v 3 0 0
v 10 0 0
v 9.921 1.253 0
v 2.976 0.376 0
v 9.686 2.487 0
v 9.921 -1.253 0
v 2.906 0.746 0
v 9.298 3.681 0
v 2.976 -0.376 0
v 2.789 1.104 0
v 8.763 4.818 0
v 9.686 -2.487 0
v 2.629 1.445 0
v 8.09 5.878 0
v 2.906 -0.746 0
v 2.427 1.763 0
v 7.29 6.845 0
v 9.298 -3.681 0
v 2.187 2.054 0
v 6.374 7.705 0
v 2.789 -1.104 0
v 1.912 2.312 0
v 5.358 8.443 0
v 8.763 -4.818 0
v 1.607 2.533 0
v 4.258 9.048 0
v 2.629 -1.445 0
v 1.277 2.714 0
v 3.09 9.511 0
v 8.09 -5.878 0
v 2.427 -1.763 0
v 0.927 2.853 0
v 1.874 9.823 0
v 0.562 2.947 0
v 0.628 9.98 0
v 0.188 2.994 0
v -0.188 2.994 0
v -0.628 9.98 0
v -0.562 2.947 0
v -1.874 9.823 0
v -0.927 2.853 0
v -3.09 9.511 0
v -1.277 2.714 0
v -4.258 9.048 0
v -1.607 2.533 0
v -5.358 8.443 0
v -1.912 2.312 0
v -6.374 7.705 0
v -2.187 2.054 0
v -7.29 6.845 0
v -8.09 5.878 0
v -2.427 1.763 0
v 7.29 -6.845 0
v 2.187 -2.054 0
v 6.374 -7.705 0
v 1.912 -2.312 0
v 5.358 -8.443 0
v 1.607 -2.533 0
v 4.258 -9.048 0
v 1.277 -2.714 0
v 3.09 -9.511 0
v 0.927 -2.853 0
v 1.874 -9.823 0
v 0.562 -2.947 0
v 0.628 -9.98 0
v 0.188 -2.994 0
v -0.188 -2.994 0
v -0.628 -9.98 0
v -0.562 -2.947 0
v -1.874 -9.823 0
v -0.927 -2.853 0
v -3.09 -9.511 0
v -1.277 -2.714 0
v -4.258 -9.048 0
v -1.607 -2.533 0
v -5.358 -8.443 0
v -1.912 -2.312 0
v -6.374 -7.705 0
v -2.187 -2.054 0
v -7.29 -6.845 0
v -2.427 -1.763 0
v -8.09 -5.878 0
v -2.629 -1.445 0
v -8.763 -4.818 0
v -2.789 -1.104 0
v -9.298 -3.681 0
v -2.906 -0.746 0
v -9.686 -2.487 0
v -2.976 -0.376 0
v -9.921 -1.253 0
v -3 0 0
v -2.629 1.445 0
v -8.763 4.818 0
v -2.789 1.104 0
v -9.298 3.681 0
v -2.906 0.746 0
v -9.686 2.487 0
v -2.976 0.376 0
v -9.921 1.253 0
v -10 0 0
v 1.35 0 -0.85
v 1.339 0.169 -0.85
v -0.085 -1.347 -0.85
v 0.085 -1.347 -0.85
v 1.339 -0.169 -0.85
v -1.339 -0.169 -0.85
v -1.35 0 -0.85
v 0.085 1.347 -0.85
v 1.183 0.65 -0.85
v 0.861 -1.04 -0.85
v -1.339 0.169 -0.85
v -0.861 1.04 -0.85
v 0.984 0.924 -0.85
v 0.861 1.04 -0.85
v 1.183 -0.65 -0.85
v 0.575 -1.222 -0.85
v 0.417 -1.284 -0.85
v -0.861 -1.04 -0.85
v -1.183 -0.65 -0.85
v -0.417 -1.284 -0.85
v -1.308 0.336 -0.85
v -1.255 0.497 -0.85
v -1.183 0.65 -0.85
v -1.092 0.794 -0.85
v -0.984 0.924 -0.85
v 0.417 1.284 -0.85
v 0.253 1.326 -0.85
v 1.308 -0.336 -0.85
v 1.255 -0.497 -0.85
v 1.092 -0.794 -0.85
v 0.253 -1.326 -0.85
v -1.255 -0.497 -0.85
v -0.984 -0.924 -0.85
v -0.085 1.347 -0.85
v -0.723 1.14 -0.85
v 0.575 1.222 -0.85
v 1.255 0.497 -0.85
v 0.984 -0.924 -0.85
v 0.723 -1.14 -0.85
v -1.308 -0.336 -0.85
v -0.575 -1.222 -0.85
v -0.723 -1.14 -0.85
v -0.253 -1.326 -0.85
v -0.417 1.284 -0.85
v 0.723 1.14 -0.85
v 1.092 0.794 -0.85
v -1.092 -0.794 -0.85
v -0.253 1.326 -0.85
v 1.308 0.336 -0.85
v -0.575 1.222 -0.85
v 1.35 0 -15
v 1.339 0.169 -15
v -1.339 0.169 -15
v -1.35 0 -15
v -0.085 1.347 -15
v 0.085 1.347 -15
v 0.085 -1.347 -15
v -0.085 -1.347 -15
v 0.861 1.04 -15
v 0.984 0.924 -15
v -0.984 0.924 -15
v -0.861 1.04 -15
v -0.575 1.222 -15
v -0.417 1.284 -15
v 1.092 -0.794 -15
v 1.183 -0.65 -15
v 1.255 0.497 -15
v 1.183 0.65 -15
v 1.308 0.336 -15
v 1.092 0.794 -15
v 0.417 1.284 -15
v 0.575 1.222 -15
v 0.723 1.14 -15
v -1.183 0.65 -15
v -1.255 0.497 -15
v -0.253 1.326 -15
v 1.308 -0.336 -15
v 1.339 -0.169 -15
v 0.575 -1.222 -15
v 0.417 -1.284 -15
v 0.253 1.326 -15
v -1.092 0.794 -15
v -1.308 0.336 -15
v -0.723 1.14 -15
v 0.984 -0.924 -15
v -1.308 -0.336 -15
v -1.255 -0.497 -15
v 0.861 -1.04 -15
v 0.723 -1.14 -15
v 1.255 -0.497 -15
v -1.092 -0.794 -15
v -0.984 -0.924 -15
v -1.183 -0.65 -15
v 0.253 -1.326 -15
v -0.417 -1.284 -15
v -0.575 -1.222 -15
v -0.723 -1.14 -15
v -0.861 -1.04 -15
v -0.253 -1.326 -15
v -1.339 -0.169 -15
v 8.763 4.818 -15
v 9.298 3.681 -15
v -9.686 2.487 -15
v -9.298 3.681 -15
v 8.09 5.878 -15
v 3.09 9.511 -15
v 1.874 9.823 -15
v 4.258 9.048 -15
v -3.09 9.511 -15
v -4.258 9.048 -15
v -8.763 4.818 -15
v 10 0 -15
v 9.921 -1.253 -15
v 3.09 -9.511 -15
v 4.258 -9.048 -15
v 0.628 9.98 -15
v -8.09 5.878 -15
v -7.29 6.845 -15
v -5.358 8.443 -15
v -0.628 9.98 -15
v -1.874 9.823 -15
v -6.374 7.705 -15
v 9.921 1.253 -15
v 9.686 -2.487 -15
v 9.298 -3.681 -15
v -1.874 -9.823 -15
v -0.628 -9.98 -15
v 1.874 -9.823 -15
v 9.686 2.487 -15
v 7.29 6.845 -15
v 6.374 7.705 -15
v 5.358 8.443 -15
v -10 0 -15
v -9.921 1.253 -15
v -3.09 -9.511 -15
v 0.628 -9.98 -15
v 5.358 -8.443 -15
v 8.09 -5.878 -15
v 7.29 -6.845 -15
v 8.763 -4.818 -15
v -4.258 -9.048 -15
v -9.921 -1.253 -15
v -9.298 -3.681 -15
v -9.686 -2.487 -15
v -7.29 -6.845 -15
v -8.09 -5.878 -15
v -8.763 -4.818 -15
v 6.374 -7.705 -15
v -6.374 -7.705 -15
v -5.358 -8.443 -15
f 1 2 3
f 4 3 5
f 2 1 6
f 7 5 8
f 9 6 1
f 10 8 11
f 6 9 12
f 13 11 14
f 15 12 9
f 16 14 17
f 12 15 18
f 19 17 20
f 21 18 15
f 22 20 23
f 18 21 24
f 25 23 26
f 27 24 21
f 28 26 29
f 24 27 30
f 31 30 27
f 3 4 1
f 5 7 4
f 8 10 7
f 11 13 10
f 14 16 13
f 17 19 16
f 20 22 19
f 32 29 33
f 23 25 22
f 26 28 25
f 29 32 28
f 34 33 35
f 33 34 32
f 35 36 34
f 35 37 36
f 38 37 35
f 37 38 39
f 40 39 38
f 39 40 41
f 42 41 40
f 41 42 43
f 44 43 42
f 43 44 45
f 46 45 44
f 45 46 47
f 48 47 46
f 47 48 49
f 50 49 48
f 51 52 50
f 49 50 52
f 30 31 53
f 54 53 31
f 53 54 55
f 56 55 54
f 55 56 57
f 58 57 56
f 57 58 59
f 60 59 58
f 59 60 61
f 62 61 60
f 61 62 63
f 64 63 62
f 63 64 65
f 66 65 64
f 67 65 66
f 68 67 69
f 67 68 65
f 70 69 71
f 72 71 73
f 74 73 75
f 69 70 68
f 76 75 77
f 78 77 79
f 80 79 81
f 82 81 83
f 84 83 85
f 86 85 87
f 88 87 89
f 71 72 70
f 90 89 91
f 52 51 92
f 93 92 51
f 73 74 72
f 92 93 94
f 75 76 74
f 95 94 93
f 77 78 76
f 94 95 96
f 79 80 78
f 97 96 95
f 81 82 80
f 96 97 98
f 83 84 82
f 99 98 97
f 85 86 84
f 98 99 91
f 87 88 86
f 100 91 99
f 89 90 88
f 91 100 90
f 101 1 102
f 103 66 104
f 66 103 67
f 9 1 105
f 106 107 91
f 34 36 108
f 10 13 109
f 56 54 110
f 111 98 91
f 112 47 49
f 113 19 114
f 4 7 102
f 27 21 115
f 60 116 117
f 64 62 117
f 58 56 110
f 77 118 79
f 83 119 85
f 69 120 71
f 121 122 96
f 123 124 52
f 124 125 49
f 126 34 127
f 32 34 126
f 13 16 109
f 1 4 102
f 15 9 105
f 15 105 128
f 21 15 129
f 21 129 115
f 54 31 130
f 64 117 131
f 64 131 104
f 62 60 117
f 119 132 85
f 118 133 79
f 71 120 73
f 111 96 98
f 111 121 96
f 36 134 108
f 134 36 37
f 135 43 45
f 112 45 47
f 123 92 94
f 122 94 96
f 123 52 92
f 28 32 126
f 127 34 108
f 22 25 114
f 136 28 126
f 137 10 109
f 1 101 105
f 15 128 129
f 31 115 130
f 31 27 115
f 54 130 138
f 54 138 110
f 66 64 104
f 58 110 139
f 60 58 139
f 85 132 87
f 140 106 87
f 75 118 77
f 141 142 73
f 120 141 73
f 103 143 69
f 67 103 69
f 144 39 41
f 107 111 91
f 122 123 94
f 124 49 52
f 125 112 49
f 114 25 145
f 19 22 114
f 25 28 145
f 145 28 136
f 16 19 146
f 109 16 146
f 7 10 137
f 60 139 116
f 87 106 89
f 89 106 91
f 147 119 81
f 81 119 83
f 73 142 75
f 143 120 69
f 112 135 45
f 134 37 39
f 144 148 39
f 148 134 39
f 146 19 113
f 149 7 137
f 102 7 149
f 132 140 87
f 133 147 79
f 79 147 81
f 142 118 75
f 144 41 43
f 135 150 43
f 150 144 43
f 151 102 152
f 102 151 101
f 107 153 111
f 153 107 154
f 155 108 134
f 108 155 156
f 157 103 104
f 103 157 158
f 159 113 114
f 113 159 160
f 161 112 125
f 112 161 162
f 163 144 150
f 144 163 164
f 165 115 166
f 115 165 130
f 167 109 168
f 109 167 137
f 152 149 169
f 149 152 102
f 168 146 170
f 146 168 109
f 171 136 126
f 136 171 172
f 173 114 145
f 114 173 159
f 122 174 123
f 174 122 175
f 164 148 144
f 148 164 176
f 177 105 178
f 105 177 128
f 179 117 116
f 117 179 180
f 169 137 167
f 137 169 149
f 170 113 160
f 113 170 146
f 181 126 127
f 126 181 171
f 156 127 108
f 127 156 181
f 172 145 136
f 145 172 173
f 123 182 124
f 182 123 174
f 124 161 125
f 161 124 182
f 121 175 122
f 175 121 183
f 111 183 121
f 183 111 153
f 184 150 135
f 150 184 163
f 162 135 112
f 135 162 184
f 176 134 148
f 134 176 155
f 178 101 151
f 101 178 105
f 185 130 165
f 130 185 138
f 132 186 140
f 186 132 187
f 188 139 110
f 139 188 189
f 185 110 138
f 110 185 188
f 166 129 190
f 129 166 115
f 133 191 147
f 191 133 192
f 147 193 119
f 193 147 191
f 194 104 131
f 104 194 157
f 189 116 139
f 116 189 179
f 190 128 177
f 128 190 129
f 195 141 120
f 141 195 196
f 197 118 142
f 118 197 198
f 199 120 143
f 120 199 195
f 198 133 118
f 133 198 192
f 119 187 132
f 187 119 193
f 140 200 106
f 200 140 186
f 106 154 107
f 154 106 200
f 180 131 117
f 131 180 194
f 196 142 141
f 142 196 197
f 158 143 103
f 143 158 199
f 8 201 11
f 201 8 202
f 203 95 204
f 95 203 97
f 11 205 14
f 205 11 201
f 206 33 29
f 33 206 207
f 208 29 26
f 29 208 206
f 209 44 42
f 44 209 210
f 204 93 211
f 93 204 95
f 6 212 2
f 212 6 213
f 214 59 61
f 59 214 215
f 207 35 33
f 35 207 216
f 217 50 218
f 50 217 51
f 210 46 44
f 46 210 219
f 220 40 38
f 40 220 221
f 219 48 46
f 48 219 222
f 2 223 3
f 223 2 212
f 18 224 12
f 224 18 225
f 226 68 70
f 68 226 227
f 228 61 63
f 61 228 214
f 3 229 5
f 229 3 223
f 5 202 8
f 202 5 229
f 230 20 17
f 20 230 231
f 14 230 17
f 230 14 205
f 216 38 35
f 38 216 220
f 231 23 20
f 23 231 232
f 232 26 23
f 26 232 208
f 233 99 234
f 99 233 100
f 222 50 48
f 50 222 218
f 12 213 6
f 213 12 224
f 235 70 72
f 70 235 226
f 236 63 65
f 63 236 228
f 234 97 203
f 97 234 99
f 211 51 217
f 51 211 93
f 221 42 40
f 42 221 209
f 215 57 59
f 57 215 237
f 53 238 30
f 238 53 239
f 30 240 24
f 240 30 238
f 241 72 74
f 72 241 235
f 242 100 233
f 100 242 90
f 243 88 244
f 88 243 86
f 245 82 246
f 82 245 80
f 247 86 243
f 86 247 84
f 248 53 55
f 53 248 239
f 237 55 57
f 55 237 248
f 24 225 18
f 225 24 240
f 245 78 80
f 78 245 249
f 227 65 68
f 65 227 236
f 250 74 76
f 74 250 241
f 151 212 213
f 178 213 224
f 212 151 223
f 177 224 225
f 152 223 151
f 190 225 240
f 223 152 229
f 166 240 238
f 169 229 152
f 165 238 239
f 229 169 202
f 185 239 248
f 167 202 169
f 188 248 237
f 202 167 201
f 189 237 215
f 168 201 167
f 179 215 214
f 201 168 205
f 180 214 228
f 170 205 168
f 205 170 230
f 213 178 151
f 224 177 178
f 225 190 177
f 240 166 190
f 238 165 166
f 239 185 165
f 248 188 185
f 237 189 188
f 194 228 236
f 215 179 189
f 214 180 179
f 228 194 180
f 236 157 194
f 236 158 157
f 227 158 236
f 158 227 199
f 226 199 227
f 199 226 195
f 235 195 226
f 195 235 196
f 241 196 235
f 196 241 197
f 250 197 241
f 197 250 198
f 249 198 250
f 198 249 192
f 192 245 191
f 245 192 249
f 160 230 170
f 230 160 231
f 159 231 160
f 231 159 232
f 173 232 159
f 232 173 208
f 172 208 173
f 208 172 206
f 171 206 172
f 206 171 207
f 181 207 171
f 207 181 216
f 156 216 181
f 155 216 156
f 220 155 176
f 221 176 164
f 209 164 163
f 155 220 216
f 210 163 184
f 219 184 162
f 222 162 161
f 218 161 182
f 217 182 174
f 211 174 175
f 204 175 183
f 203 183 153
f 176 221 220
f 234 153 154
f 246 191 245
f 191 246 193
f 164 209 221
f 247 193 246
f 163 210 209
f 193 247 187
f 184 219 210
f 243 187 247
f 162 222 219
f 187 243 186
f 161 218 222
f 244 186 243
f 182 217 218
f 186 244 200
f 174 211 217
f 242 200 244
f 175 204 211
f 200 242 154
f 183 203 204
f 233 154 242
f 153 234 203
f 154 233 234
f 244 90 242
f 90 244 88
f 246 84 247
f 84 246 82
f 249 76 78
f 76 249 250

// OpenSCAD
$fn = 50;

difference() {
	union() {
		translate(v = [0, 0, -15.0]) {
			cylinder(h = 15, r = 10.0);
		}
	}
	union() {
		translate(v = [0, 0, 0]) {
			rotate(a = [0, 0, 0]) {
				difference() {
					union() {
						translate(v = [0, 0, -18.0]) {
							cylinder(h = 18, r = 1.0);
						}
						translate(v = [0, 0, -0.85]) {
							cylinder(h = 0.85, r1 = 1.35, r2 = 3.0);
						}
						translate(v = [0, 0, -18.0]) {
							cylinder(h = 18, r = 1.35);
						}
						translate(v = [0, 0, -18.0]) {
							cylinder(h = 18, r = 1.0);
						}
					}
					union();
				}
			}
		}
	}
}
